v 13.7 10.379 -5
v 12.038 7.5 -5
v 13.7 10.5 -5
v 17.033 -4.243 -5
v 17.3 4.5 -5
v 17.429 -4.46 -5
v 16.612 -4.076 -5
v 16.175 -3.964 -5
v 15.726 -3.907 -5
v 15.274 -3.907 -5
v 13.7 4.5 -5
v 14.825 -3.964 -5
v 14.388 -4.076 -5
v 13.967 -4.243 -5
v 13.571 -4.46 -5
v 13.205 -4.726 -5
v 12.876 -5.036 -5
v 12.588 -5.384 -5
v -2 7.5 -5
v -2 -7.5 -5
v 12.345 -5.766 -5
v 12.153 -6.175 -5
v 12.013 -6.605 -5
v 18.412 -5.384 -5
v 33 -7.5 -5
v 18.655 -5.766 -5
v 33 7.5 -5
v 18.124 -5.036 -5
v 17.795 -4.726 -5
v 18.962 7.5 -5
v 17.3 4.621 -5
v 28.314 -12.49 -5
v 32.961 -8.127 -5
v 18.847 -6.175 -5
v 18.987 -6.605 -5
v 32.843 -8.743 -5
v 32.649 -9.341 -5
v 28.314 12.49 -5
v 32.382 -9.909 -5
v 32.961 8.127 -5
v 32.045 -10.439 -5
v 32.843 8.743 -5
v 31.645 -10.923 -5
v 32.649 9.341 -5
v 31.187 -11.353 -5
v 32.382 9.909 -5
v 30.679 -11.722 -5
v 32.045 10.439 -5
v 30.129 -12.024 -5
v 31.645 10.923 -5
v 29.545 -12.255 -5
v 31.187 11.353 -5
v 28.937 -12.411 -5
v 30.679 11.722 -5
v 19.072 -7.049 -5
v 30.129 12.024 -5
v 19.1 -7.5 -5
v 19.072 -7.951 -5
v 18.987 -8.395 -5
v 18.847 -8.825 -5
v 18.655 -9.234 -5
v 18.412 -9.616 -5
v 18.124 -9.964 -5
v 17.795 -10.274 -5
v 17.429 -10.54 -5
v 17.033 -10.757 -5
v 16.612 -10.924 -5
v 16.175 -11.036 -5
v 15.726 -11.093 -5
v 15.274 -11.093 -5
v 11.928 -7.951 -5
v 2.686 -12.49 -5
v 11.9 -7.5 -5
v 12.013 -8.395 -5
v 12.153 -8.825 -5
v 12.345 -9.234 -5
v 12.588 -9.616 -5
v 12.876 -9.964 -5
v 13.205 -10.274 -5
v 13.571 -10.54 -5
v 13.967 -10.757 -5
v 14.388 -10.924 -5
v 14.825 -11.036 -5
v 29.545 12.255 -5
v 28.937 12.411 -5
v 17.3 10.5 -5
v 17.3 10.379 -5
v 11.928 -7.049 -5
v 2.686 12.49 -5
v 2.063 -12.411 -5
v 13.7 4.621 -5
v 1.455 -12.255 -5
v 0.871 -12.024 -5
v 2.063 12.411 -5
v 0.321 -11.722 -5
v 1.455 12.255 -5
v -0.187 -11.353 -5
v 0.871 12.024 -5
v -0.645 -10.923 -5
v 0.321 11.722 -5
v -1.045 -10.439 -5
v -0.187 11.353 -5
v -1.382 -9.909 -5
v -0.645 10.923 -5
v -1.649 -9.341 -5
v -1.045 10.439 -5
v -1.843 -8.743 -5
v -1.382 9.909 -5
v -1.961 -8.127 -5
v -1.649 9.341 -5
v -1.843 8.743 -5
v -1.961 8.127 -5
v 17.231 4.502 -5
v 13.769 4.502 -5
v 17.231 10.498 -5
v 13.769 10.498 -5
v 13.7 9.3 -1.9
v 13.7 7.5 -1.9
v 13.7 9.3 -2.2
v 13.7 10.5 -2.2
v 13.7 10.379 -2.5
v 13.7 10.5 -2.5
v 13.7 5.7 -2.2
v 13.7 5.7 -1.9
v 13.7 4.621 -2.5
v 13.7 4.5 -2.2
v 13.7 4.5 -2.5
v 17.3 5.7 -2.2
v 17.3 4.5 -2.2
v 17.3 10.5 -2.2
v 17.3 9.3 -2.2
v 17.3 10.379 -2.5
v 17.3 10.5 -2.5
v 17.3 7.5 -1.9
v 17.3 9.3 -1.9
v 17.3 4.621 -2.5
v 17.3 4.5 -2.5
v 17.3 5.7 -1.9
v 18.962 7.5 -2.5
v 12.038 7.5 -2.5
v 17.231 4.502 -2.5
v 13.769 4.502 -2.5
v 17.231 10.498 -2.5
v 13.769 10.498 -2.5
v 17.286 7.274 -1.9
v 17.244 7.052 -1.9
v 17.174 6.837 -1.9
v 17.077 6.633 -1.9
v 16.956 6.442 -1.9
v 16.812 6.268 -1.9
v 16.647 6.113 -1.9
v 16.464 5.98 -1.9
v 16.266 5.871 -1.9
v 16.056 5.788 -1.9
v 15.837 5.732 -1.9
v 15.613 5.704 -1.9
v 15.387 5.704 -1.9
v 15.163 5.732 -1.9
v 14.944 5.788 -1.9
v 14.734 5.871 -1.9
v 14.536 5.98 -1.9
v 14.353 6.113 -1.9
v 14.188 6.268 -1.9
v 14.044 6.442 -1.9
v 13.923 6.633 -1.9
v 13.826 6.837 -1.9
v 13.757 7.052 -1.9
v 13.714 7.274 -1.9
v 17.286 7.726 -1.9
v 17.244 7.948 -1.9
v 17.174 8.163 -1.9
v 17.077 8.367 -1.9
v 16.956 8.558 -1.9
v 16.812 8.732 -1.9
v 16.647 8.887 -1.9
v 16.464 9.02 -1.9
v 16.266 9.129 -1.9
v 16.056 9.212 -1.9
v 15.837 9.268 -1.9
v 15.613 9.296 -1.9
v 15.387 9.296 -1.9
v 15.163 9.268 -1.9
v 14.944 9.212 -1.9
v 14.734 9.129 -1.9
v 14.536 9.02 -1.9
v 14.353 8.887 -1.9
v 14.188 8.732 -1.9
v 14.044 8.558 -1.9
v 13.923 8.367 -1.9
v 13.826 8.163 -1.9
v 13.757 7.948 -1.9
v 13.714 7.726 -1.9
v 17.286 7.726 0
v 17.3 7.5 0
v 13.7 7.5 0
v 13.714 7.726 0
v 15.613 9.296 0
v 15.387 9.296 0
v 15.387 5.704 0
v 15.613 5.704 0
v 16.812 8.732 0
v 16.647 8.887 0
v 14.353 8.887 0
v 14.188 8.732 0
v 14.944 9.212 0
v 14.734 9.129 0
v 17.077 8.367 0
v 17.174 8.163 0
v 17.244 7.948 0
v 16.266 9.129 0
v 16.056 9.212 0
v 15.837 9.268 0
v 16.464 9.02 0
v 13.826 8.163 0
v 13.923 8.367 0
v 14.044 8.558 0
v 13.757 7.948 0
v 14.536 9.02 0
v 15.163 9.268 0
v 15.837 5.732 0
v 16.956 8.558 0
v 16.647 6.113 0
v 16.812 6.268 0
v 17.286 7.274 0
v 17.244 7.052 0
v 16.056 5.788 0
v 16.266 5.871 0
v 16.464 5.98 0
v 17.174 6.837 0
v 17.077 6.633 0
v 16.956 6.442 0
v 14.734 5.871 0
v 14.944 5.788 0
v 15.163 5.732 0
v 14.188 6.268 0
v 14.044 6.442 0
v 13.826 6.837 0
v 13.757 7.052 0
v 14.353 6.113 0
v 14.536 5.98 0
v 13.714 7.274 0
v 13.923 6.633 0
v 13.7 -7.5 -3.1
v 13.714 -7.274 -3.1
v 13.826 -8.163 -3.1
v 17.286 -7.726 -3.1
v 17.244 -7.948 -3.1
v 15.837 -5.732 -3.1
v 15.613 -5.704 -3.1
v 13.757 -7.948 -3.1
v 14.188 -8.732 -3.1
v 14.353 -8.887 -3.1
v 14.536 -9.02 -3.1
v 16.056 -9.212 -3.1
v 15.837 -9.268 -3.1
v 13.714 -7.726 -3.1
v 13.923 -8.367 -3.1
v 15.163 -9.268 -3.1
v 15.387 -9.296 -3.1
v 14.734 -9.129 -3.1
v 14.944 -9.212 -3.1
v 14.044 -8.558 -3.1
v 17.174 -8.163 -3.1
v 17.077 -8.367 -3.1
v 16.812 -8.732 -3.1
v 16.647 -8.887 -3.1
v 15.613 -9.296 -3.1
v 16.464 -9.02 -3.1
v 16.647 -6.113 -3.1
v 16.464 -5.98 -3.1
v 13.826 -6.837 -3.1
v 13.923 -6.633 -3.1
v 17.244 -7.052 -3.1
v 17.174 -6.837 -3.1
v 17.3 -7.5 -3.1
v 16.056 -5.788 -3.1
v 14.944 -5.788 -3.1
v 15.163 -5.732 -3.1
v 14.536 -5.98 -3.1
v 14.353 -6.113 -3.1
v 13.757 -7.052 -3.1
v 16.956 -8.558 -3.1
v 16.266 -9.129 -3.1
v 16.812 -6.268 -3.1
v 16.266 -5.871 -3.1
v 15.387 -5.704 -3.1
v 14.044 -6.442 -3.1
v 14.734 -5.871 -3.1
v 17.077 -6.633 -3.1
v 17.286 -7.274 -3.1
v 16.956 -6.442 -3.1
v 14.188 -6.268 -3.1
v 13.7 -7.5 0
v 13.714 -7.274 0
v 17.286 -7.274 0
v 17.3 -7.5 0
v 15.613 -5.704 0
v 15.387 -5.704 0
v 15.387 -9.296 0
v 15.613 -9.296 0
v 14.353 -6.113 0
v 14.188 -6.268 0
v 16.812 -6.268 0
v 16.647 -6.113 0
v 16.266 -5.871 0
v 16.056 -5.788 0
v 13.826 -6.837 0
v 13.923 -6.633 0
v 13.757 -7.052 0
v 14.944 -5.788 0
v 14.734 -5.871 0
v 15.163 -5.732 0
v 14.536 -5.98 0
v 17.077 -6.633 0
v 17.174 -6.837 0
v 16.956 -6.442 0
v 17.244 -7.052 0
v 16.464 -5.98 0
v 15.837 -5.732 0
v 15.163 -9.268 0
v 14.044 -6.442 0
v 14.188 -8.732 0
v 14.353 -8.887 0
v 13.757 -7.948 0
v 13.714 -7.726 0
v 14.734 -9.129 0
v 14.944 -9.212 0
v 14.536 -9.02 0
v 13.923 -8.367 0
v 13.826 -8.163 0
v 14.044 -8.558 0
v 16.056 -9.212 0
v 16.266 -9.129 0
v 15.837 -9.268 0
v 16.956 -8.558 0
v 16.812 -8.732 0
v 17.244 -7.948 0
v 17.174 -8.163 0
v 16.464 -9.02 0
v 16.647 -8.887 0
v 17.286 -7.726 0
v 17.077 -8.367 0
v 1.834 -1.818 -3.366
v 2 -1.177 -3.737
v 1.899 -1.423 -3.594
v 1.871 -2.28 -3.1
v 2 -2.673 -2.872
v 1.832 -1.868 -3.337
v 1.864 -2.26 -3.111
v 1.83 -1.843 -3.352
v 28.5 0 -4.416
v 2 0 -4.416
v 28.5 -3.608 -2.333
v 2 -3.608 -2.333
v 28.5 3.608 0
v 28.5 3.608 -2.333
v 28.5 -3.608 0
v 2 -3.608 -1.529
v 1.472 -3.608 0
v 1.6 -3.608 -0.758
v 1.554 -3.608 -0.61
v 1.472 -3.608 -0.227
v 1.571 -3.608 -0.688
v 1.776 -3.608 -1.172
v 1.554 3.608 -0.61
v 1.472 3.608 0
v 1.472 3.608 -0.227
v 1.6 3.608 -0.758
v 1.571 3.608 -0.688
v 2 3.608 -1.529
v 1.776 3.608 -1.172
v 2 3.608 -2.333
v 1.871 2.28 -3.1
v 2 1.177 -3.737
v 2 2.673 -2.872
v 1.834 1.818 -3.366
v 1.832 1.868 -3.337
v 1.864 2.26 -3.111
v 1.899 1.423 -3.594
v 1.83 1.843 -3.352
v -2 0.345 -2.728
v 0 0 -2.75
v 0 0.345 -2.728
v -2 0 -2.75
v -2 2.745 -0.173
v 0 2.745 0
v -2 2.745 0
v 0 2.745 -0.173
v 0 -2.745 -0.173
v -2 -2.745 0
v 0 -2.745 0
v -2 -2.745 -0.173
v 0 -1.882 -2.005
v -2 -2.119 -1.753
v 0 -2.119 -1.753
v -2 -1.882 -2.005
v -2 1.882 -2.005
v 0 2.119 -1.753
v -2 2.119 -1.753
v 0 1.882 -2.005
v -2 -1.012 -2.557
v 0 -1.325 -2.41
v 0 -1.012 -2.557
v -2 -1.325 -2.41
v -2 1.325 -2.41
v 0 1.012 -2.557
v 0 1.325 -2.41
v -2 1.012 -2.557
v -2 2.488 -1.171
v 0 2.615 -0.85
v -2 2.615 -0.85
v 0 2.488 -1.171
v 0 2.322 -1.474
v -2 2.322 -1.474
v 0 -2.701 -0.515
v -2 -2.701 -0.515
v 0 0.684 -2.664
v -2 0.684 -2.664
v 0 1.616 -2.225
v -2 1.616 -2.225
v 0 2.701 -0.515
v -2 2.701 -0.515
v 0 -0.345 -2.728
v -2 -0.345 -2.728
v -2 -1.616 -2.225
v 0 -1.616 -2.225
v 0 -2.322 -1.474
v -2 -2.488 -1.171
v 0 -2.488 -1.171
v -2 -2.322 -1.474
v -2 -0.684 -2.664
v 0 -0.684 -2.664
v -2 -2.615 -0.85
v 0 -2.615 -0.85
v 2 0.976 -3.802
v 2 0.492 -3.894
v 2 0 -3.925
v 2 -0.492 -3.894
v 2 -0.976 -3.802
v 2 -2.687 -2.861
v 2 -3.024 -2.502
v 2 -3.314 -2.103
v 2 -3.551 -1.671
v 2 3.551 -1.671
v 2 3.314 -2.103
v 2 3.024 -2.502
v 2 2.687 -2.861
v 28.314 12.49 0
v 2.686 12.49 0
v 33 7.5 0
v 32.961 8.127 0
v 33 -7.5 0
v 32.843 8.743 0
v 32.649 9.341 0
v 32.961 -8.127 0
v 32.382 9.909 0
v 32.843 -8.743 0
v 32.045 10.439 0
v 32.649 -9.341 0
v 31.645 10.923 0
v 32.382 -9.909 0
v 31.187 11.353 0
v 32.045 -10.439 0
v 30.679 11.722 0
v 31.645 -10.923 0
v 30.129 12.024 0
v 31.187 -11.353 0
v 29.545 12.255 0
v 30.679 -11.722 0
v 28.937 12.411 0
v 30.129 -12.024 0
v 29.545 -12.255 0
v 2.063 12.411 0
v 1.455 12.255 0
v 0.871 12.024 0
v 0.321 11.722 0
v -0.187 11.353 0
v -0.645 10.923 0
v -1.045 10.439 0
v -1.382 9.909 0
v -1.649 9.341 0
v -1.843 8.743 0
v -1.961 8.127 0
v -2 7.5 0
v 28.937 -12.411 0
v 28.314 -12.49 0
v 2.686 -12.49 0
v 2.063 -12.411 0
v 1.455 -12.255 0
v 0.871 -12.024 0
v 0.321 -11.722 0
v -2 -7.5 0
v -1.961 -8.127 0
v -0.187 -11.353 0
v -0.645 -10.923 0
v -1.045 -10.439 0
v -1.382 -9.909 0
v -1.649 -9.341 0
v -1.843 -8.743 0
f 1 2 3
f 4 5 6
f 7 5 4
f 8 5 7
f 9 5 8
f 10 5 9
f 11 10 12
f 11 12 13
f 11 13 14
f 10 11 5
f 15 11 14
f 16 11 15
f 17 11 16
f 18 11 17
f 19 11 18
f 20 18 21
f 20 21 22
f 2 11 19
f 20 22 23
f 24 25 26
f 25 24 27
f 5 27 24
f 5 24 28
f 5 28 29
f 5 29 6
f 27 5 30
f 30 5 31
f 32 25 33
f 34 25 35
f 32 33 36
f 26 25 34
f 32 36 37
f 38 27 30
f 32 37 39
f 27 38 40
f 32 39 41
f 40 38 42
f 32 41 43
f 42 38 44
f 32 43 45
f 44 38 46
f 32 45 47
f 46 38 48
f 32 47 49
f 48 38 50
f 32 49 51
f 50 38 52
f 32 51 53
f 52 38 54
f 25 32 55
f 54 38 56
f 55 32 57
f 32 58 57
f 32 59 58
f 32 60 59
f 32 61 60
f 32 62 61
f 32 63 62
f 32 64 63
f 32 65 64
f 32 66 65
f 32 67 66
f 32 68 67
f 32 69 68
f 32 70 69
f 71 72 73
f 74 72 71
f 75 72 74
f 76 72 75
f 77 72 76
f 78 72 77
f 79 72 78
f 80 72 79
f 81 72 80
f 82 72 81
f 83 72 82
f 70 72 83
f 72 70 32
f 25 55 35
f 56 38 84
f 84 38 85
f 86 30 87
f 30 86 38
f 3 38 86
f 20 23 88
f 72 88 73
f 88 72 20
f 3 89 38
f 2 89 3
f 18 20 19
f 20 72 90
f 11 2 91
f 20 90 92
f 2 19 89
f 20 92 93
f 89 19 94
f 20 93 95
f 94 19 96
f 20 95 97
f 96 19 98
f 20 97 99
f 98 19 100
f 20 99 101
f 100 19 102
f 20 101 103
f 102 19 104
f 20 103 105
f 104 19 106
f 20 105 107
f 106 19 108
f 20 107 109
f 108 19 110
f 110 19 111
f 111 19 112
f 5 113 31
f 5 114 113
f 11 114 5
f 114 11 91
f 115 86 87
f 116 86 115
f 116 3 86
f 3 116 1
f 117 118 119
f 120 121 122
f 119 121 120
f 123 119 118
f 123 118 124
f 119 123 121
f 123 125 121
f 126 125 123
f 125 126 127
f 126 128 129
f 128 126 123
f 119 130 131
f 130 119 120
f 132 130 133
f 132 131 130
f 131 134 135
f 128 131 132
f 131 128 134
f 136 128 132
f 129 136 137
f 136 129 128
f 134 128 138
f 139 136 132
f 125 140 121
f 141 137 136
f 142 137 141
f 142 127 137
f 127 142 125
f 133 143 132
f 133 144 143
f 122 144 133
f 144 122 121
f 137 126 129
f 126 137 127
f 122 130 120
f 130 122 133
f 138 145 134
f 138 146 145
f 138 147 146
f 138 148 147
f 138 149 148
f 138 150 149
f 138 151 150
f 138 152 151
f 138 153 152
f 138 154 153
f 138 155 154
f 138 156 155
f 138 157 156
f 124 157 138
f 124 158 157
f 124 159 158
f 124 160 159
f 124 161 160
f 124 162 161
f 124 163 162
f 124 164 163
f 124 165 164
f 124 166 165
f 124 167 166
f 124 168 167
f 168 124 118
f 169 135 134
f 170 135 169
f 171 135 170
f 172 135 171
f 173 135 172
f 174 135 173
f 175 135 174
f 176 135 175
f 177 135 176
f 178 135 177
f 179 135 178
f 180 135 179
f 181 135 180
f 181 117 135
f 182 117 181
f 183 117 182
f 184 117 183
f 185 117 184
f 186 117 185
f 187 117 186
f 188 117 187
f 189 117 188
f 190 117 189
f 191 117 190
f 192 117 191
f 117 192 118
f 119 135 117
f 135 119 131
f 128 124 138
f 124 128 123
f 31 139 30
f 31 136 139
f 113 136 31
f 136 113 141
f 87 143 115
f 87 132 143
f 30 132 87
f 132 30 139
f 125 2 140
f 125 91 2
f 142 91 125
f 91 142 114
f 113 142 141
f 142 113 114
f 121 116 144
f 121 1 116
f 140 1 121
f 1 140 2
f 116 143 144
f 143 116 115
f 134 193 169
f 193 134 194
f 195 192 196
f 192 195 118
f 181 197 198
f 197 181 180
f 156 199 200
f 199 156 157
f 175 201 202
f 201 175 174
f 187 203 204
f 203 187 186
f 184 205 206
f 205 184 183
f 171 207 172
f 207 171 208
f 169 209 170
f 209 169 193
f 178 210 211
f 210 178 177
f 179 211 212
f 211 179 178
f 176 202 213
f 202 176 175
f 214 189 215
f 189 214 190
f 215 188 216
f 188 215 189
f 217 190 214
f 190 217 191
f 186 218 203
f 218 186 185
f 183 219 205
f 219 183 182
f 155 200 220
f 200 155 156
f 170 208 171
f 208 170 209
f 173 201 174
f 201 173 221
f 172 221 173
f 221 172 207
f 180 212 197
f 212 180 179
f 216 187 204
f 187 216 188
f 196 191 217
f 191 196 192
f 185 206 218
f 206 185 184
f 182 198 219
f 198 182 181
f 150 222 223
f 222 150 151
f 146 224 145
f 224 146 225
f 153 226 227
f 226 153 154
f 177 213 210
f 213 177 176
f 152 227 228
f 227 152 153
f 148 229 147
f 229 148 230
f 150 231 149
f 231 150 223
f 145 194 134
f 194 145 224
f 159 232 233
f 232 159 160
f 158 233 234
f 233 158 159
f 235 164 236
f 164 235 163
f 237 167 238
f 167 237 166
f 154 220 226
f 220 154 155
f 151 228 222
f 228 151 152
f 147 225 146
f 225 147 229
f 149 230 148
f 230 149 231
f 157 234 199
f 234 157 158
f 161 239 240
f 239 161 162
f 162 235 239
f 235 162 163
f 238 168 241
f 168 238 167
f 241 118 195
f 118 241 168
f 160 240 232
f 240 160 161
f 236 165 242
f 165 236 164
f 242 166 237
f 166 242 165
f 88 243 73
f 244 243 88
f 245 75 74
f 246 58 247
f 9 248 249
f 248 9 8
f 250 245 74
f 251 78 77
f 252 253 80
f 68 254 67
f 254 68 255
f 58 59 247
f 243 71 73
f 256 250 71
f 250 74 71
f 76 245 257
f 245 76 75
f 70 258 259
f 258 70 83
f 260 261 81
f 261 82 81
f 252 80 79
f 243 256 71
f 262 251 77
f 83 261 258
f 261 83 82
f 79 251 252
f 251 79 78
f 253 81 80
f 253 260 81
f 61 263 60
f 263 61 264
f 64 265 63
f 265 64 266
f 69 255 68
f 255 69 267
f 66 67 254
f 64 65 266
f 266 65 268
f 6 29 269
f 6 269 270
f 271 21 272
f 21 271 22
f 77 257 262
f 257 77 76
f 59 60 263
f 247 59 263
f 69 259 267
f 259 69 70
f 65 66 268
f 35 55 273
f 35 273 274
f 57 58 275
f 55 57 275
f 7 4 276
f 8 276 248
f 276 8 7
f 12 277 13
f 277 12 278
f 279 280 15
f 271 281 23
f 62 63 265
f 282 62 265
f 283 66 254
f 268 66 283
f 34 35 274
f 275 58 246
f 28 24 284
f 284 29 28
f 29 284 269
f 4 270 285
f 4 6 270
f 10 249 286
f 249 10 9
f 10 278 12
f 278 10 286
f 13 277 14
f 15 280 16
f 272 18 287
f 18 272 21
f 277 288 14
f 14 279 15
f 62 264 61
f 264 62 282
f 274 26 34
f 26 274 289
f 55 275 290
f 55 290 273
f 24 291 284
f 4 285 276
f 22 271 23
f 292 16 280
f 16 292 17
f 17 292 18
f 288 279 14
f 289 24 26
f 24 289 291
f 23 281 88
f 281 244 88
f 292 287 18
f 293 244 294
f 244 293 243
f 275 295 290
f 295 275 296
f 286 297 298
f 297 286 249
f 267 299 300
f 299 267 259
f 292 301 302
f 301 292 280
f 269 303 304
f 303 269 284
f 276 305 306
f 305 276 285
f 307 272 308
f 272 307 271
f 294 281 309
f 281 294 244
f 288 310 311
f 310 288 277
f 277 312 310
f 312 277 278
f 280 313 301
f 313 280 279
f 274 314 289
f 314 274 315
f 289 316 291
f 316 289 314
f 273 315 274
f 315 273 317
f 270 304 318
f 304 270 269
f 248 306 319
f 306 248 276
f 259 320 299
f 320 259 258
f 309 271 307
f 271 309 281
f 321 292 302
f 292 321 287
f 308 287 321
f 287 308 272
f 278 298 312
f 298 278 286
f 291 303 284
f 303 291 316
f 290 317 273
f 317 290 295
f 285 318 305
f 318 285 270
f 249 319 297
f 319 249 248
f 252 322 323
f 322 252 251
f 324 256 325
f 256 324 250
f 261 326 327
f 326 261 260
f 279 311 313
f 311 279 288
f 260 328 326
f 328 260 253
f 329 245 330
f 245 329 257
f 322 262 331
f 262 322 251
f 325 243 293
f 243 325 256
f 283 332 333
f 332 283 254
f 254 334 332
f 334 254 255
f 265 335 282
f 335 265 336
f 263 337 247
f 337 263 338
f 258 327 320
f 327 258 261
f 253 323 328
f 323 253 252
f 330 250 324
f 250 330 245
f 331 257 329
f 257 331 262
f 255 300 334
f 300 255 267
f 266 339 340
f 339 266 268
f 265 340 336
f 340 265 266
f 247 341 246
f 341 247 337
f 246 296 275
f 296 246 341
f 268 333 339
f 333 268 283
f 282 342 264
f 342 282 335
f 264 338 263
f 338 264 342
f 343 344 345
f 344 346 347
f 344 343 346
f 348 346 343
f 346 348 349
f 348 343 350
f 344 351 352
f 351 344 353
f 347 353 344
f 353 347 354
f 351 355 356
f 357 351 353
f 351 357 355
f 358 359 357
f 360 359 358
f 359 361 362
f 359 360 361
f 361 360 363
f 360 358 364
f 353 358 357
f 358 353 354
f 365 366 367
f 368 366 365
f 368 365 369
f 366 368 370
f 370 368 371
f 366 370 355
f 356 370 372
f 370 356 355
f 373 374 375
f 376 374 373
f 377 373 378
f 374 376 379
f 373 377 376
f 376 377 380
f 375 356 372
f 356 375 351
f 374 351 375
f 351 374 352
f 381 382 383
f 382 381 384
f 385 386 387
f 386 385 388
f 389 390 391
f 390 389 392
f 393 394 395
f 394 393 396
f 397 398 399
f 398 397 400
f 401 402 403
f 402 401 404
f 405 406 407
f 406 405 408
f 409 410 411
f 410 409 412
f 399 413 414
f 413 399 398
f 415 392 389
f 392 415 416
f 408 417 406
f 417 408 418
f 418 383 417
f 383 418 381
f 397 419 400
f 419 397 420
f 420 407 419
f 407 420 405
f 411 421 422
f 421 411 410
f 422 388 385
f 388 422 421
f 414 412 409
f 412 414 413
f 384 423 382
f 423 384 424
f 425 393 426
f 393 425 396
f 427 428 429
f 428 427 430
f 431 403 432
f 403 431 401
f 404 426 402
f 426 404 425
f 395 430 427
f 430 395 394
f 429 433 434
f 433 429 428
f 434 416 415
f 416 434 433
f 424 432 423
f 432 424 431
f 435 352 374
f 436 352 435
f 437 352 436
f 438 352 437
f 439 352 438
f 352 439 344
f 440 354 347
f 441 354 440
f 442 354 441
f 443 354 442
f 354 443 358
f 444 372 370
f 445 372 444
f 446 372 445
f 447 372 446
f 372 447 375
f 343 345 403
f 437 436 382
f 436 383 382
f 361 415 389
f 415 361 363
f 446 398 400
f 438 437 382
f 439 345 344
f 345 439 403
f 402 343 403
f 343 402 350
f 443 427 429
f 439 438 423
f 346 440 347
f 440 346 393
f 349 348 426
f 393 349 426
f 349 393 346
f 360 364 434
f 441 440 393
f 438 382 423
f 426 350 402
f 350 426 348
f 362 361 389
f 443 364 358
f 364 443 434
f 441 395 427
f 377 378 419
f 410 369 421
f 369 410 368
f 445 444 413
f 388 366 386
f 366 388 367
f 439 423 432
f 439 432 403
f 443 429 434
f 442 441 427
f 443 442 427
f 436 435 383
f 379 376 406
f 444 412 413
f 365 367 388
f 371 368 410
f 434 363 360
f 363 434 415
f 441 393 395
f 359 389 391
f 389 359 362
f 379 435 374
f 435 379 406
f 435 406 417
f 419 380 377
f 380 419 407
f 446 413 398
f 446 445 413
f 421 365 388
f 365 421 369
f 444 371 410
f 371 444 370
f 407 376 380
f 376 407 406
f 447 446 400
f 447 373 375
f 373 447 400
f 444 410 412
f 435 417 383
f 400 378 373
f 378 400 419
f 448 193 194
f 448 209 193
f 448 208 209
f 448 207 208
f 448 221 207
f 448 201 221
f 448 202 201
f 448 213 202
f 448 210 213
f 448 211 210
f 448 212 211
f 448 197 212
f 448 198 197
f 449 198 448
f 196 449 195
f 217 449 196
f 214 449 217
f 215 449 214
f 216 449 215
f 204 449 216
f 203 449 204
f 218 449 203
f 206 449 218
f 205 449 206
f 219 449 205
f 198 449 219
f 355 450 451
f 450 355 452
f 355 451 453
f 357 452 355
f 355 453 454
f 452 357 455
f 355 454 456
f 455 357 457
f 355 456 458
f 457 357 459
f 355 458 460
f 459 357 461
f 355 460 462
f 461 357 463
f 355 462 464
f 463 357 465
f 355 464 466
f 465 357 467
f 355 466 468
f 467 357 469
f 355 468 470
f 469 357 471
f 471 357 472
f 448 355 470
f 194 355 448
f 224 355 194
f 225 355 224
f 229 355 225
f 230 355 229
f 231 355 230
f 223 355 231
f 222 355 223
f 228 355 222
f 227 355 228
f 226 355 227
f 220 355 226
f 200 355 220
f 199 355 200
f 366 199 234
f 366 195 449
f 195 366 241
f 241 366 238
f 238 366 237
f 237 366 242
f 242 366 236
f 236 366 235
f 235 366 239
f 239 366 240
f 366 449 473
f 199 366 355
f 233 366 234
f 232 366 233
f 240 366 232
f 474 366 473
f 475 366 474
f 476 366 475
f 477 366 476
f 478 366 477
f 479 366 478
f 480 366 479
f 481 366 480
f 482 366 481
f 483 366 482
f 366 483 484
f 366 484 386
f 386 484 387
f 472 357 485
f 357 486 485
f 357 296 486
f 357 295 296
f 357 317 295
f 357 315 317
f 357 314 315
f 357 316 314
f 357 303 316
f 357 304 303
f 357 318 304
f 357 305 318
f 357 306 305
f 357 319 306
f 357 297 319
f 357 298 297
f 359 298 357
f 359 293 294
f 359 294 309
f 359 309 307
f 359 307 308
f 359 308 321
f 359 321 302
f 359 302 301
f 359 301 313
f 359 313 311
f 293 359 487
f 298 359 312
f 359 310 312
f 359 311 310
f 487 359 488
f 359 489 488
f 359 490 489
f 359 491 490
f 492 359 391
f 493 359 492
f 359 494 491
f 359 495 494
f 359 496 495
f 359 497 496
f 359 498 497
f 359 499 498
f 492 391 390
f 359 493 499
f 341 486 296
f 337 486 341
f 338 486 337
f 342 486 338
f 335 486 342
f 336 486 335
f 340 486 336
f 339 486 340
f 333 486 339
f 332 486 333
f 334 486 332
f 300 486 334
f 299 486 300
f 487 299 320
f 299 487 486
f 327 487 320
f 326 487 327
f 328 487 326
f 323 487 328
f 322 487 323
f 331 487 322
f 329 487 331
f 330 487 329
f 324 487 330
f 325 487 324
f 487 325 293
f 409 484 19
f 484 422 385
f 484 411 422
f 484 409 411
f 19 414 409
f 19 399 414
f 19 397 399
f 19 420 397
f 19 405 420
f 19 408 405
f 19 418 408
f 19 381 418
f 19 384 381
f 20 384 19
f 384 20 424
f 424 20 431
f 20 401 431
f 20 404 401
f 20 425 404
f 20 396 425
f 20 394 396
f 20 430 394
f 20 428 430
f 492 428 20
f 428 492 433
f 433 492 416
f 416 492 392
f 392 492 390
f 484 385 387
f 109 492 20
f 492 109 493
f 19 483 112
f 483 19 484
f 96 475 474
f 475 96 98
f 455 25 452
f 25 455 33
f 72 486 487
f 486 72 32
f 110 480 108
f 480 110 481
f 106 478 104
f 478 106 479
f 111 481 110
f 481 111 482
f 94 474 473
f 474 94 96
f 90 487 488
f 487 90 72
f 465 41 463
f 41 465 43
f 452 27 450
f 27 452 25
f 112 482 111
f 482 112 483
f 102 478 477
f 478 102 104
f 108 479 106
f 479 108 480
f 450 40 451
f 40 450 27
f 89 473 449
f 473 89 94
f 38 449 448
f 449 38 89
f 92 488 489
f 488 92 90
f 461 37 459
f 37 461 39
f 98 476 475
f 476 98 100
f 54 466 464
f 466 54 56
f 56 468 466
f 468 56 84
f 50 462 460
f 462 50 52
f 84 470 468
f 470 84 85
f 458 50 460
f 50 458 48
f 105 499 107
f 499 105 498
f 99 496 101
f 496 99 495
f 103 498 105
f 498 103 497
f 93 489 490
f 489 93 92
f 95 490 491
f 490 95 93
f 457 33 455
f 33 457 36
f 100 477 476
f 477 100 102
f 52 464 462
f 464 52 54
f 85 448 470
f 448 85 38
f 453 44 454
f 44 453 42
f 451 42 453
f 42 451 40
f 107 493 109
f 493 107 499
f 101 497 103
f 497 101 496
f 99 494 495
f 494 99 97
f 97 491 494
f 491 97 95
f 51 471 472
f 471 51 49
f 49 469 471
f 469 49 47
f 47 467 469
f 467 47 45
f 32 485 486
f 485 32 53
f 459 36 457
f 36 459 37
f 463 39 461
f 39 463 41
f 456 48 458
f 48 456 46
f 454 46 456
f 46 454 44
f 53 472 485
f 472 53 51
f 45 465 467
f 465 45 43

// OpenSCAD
$fn = 50;


difference() {
	union() {
		translate(v = [15.5000000000, 0, -5.0000000000]) {
			hull() {
				translate(v = [-12.5000000000, 7.5000000000, 0]) {
					cylinder(h = 10, r = 5);
				}
				translate(v = [12.5000000000, 7.5000000000, 0]) {
					cylinder(h = 10, r = 5);
				}
				translate(v = [-12.5000000000, -7.5000000000, 0]) {
					cylinder(h = 10, r = 5);
				}
				translate(v = [12.5000000000, -7.5000000000, 0]) {
					cylinder(h = 10, r = 5);
				}
			}
		}
	}
	union() {
		translate(v = [15.5000000000, 7.5000000000, 5.0000000000]) {
			rotate(a = [0, 0, 0]) {
				difference() {
					union() {
						translate(v = [0, 0, -10.0000000000]) {
							rotate(a = [0, 0, 0]) {
								difference() {
									union() {
										#translate(v = [-1.8000000000, -3.0000000000, -0.3000000000]) {
											cube(size = [3.6000000000, 6.0000000000, 0.3000000000]);
										}
										#translate(v = [-1.8000000000, -1.8000000000, -0.6000000000]) {
											cube(size = [3.6000000000, 3.6000000000, 0.3000000000]);
										}
										#translate(v = [-1.8000000000, -3.0000000000, 2.5000000000]) {
											cube(size = [3.6000000000, 6.0000000000, 0.3000000000]);
										}
										#translate(v = [-1.8000000000, -1.8000000000, 2.8000000000]) {
											cube(size = [3.6000000000, 3.6000000000, 0.3000000000]);
										}
										#linear_extrude(height = 2.5000000000) {
											polygon(points = [[3.4620000000, 0.0000000000], [1.7310000000, 2.9981799479], [-1.7310000000, 2.9981799479], [-3.4620000000, 0.0000000000], [-1.7310000000, -2.9981799479], [1.7310000000, -2.9981799479]]);
										}
										#translate(v = [-1.8000000000, -3.0000000000, -0.3000000000]) {
											cube(size = [3.6000000000, 6.0000000000, 0.3000000000]);
										}
										#translate(v = [-1.8000000000, -1.8000000000, -0.6000000000]) {
											cube(size = [3.6000000000, 3.6000000000, 0.3000000000]);
										}
										#translate(v = [-1.8000000000, -3.0000000000, 2.5000000000]) {
											cube(size = [3.6000000000, 6.0000000000, 0.3000000000]);
										}
										#translate(v = [-1.8000000000, -1.8000000000, 2.8000000000]) {
											cube(size = [3.6000000000, 3.6000000000, 0.3000000000]);
										}
										#translate(v = [-1.8000000000, -3.0000000000, -0.3000000000]) {
											cube(size = [3.6000000000, 6.0000000000, 0.3000000000]);
										}
										#translate(v = [-1.8000000000, -1.8000000000, -0.6000000000]) {
											cube(size = [3.6000000000, 3.6000000000, 0.3000000000]);
										}
										#translate(v = [-1.8000000000, -3.0000000000, 2.5000000000]) {
											cube(size = [3.6000000000, 6.0000000000, 0.3000000000]);
										}
										#translate(v = [-1.8000000000, -1.8000000000, 2.8000000000]) {
											cube(size = [3.6000000000, 3.6000000000, 0.3000000000]);
										}
									}
									union();
								}
							}
						}
						translate(v = [0, 0, -10.0000000000]) {
							rotate(a = [0, 0, 0]) {
								difference() {
									union() {
										#translate(v = [-1.8000000000, -3.0000000000, -0.3000000000]) {
											cube(size = [3.6000000000, 6.0000000000, 0.3000000000]);
										}
										#translate(v = [-1.8000000000, -1.8000000000, -0.6000000000]) {
											cube(size = [3.6000000000, 3.6000000000, 0.3000000000]);
										}
										#translate(v = [-1.8000000000, -3.0000000000, 2.5000000000]) {
											cube(size = [3.6000000000, 6.0000000000, 0.3000000000]);
										}
										#translate(v = [-1.8000000000, -1.8000000000, 2.8000000000]) {
											cube(size = [3.6000000000, 3.6000000000, 0.3000000000]);
										}
										#linear_extrude(height = 2.5000000000) {
											polygon(points = [[3.4620000000, 0.0000000000], [1.7310000000, 2.9981799479], [-1.7310000000, 2.9981799479], [-3.4620000000, 0.0000000000], [-1.7310000000, -2.9981799479], [1.7310000000, -2.9981799479]]);
										}
										#translate(v = [-1.8000000000, -3.0000000000, -0.3000000000]) {
											cube(size = [3.6000000000, 6.0000000000, 0.3000000000]);
										}
										#translate(v = [-1.8000000000, -1.8000000000, -0.6000000000]) {
											cube(size = [3.6000000000, 3.6000000000, 0.3000000000]);
										}
										#translate(v = [-1.8000000000, -3.0000000000, 2.5000000000]) {
											cube(size = [3.6000000000, 6.0000000000, 0.3000000000]);
										}
										#translate(v = [-1.8000000000, -1.8000000000, 2.8000000000]) {
											cube(size = [3.6000000000, 3.6000000000, 0.3000000000]);
										}
										#translate(v = [-1.8000000000, -3.0000000000, -0.3000000000]) {
											cube(size = [3.6000000000, 6.0000000000, 0.3000000000]);
										}
										#translate(v = [-1.8000000000, -1.8000000000, -0.6000000000]) {
											cube(size = [3.6000000000, 3.6000000000, 0.3000000000]);
										}
										#translate(v = [-1.8000000000, -3.0000000000, 2.5000000000]) {
											cube(size = [3.6000000000, 6.0000000000, 0.3000000000]);
										}
										#translate(v = [-1.8000000000, -1.8000000000, 2.8000000000]) {
											cube(size = [3.6000000000, 3.6000000000, 0.3000000000]);
										}
									}
									union();
								}
							}
						}
						translate(v = [0, 0, -10.0000000000]) {
							rotate(a = [0, 0, 0]) {
								difference() {
									union() {
										#translate(v = [-1.8000000000, -3.0000000000, -0.3000000000]) {
											cube(size = [3.6000000000, 6.0000000000, 0.3000000000]);
										}
										#translate(v = [-1.8000000000, -1.8000000000, -0.6000000000]) {
											cube(size = [3.6000000000, 3.6000000000, 0.3000000000]);
										}
										#translate(v = [-1.8000000000, -3.0000000000, 2.5000000000]) {
											cube(size = [3.6000000000, 6.0000000000, 0.3000000000]);
										}
										#translate(v = [-1.8000000000, -1.8000000000, 2.8000000000]) {
											cube(size = [3.6000000000, 3.6000000000, 0.3000000000]);
										}
										#linear_extrude(height = 2.5000000000) {
											polygon(points = [[3.4620000000, 0.0000000000], [1.7310000000, 2.9981799479], [-1.7310000000, 2.9981799479], [-3.4620000000, 0.0000000000], [-1.7310000000, -2.9981799479], [1.7310000000, -2.9981799479]]);
										}
										#translate(v = [-1.8000000000, -3.0000000000, -0.3000000000]) {
											cube(size = [3.6000000000, 6.0000000000, 0.3000000000]);
										}
										#translate(v = [-1.8000000000, -1.8000000000, -0.6000000000]) {
											cube(size = [3.6000000000, 3.6000000000, 0.3000000000]);
										}
										#translate(v = [-1.8000000000, -3.0000000000, 2.5000000000]) {
											cube(size = [3.6000000000, 6.0000000000, 0.3000000000]);
										}
										#translate(v = [-1.8000000000, -1.8000000000, 2.8000000000]) {
											cube(size = [3.6000000000, 3.6000000000, 0.3000000000]);
										}
										#translate(v = [-1.8000000000, -3.0000000000, -0.3000000000]) {
											cube(size = [3.6000000000, 6.0000000000, 0.3000000000]);
										}
										#translate(v = [-1.8000000000, -1.8000000000, -0.6000000000]) {
											cube(size = [3.6000000000, 3.6000000000, 0.3000000000]);
										}
										#translate(v = [-1.8000000000, -3.0000000000, 2.5000000000]) {
											cube(size = [3.6000000000, 6.0000000000, 0.3000000000]);
										}
										#translate(v = [-1.8000000000, -1.8000000000, 2.8000000000]) {
											cube(size = [3.6000000000, 3.6000000000, 0.3000000000]);
										}
									}
									union();
								}
							}
						}
						#translate(v = [0, 0, -10.0000000000]) {
							cylinder(h = 10, r = 1.5000000000);
						}
						#translate(v = [0, 0, -1.9000000000]) {
							cylinder(h = 1.9000000000, r1 = 1.8000000000, r2 = 3.6000000000);
						}
						#translate(v = [0, 0, -10.0000000000]) {
							cylinder(h = 10, r = 1.8000000000);
						}
						#translate(v = [0, 0, -10.0000000000]) {
							cylinder(h = 10, r = 1.5000000000);
						}
					}
					union();
				}
			}
		}
		translate(v = [15.5000000000, -7.5000000000, -5.0000000000]) {
			rotate(a = [0, 180, 0]) {
				difference() {
					union() {
						translate(v = [0, 0, -10.0000000000]) {
							rotate(a = [0, 0, 0]) {
								difference() {
									union() {
										#translate(v = [-1.8000000000, -3.0000000000, -0.3000000000]) {
											cube(size = [3.6000000000, 6.0000000000, 0.3000000000]);
										}
										#translate(v = [-1.8000000000, -1.8000000000, -0.6000000000]) {
											cube(size = [3.6000000000, 3.6000000000, 0.3000000000]);
										}
										#translate(v = [-1.8000000000, -3.0000000000, 2.5000000000]) {
											cube(size = [3.6000000000, 6.0000000000, 0.3000000000]);
										}
										#translate(v = [-1.8000000000, -1.8000000000, 2.8000000000]) {
											cube(size = [3.6000000000, 3.6000000000, 0.3000000000]);
										}
										#linear_extrude(height = 2.5000000000) {
											polygon(points = [[3.4620000000, 0.0000000000], [1.7310000000, 2.9981799479], [-1.7310000000, 2.9981799479], [-3.4620000000, 0.0000000000], [-1.7310000000, -2.9981799479], [1.7310000000, -2.9981799479]]);
										}
										#translate(v = [-1.8000000000, -3.0000000000, -0.3000000000]) {
											cube(size = [3.6000000000, 6.0000000000, 0.3000000000]);
										}
										#translate(v = [-1.8000000000, -1.8000000000, -0.6000000000]) {
											cube(size = [3.6000000000, 3.6000000000, 0.3000000000]);
										}
										#translate(v = [-1.8000000000, -3.0000000000, 2.5000000000]) {
											cube(size = [3.6000000000, 6.0000000000, 0.3000000000]);
										}
										#translate(v = [-1.8000000000, -1.8000000000, 2.8000000000]) {
											cube(size = [3.6000000000, 3.6000000000, 0.3000000000]);
										}
										#translate(v = [-1.8000000000, -3.0000000000, -0.3000000000]) {
											cube(size = [3.6000000000, 6.0000000000, 0.3000000000]);
										}
										#translate(v = [-1.8000000000, -1.8000000000, -0.6000000000]) {
											cube(size = [3.6000000000, 3.6000000000, 0.3000000000]);
										}
										#translate(v = [-1.8000000000, -3.0000000000, 2.5000000000]) {
											cube(size = [3.6000000000, 6.0000000000, 0.3000000000]);
										}
										#translate(v = [-1.8000000000, -1.8000000000, 2.8000000000]) {
											cube(size = [3.6000000000, 3.6000000000, 0.3000000000]);
										}
									}
									union();
								}
							}
						}
						translate(v = [0, 0, -10.0000000000]) {
							rotate(a = [0, 0, 0]) {
								difference() {
									union() {
										#translate(v = [-1.8000000000, -3.0000000000, -0.3000000000]) {
											cube(size = [3.6000000000, 6.0000000000, 0.3000000000]);
										}
										#translate(v = [-1.8000000000, -1.8000000000, -0.6000000000]) {
											cube(size = [3.6000000000, 3.6000000000, 0.3000000000]);
										}
										#translate(v = [-1.8000000000, -3.0000000000, 2.5000000000]) {
											cube(size = [3.6000000000, 6.0000000000, 0.3000000000]);
										}
										#translate(v = [-1.8000000000, -1.8000000000, 2.8000000000]) {
											cube(size = [3.6000000000, 3.6000000000, 0.3000000000]);
										}
										#linear_extrude(height = 2.5000000000) {
											polygon(points = [[3.4620000000, 0.0000000000], [1.7310000000, 2.9981799479], [-1.7310000000, 2.9981799479], [-3.4620000000, 0.0000000000], [-1.7310000000, -2.9981799479], [1.7310000000, -2.9981799479]]);
										}
										#translate(v = [-1.8000000000, -3.0000000000, -0.3000000000]) {
											cube(size = [3.6000000000, 6.0000000000, 0.3000000000]);
										}
										#translate(v = [-1.8000000000, -1.8000000000, -0.6000000000]) {
											cube(size = [3.6000000000, 3.6000000000, 0.3000000000]);
										}
										#translate(v = [-1.8000000000, -3.0000000000, 2.5000000000]) {
											cube(size = [3.6000000000, 6.0000000000, 0.3000000000]);
										}
										#translate(v = [-1.8000000000, -1.8000000000, 2.8000000000]) {
											cube(size = [3.6000000000, 3.6000000000, 0.3000000000]);
										}
										#translate(v = [-1.8000000000, -3.0000000000, -0.3000000000]) {
											cube(size = [3.6000000000, 6.0000000000, 0.3000000000]);
										}
										#translate(v = [-1.8000000000, -1.8000000000, -0.6000000000]) {
											cube(size = [3.6000000000, 3.6000000000, 0.3000000000]);
										}
										#translate(v = [-1.8000000000, -3.0000000000, 2.5000000000]) {
											cube(size = [3.6000000000, 6.0000000000, 0.3000000000]);
										}
										#translate(v = [-1.8000000000, -1.8000000000, 2.8000000000]) {
											cube(size = [3.6000000000, 3.6000000000, 0.3000000000]);
										}
									}
									union();
								}
							}
						}
						translate(v = [0, 0, -10.0000000000]) {
							rotate(a = [0, 0, 0]) {
								difference() {
									union() {
										#translate(v = [-1.8000000000, -3.0000000000, -0.3000000000]) {
											cube(size = [3.6000000000, 6.0000000000, 0.3000000000]);
										}
										#translate(v = [-1.8000000000, -1.8000000000, -0.6000000000]) {
											cube(size = [3.6000000000, 3.6000000000, 0.3000000000]);
										}
										#translate(v = [-1.8000000000, -3.0000000000, 2.5000000000]) {
											cube(size = [3.6000000000, 6.0000000000, 0.3000000000]);
										}
										#translate(v = [-1.8000000000, -1.8000000000, 2.8000000000]) {
											cube(size = [3.6000000000, 3.6000000000, 0.3000000000]);
										}
										#linear_extrude(height = 2.5000000000) {
											polygon(points = [[3.4620000000, 0.0000000000], [1.7310000000, 2.9981799479], [-1.7310000000, 2.9981799479], [-3.4620000000, 0.0000000000], [-1.7310000000, -2.9981799479], [1.7310000000, -2.9981799479]]);
										}
										#translate(v = [-1.8000000000, -3.0000000000, -0.3000000000]) {
											cube(size = [3.6000000000, 6.0000000000, 0.3000000000]);
										}
										#translate(v = [-1.8000000000, -1.8000000000, -0.6000000000]) {
											cube(size = [3.6000000000, 3.6000000000, 0.3000000000]);
										}
										#translate(v = [-1.8000000000, -3.0000000000, 2.5000000000]) {
											cube(size = [3.6000000000, 6.0000000000, 0.3000000000]);
										}
										#translate(v = [-1.8000000000, -1.8000000000, 2.8000000000]) {
											cube(size = [3.6000000000, 3.6000000000, 0.3000000000]);
										}
										#translate(v = [-1.8000000000, -3.0000000000, -0.3000000000]) {
											cube(size = [3.6000000000, 6.0000000000, 0.3000000000]);
										}
										#translate(v = [-1.8000000000, -1.8000000000, -0.6000000000]) {
											cube(size = [3.6000000000, 3.6000000000, 0.3000000000]);
										}
										#translate(v = [-1.8000000000, -3.0000000000, 2.5000000000]) {
											cube(size = [3.6000000000, 6.0000000000, 0.3000000000]);
										}
										#translate(v = [-1.8000000000, -1.8000000000, 2.8000000000]) {
											cube(size = [3.6000000000, 3.6000000000, 0.3000000000]);
										}
									}
									union();
								}
							}
						}
						#translate(v = [0, 0, -10.0000000000]) {
							cylinder(h = 10, r = 1.5000000000);
						}
						#translate(v = [0, 0, -1.9000000000]) {
							cylinder(h = 1.9000000000, r1 = 1.8000000000, r2 = 3.6000000000);
						}
						#translate(v = [0, 0, -10.0000000000]) {
							cylinder(h = 10, r = 1.8000000000);
						}
						#translate(v = [0, 0, -10.0000000000]) {
							cylinder(h = 10, r = 1.5000000000);
						}
					}
					union();
				}
			}
		}
		translate(v = [0, 0, 0]) {
			rotate(a = [0, 90, 0]) {
				difference() {
					union() {
						translate(v = [0.2500000000, 0, 0]) {
							#linear_extrude(height = 28.5000000000) {
								polygon(points = [[4.1658550000, 0.0000000000], [2.0829275000, 3.6077362585], [-2.0829275000, 3.6077362585], [-4.1658550000, 0.0000000000], [-2.0829275000, -3.6077362585], [2.0829275000, -3.6077362585]]);
							}
						}
						#translate(v = [0, 0, -72.0000000000]) {
							cylinder(h = 100, r = 2.7500000000);
						}
					}
					union() {
						difference() {
							#cylinder(h = 2, r1 = 10.7500000000, r2 = 11.9250000000);
							#cylinder(h = 2, r1 = 2.7500000000, r2 = 3.9250000000);
						}
					}
				}
			}
		}
		translate(v = [-250.0000000000, -250.0000000000, 0]) {
			cube(size = [500, 500, 500]);
		}
		translate(v = [-250.0000000000, -250.0000000000, 0]) {
			cube(size = [500, 500, 500]);
		}
		translate(v = [-250.0000000000, -250.0000000000, 0]) {
			cube(size = [500, 500, 500]);
		}
	}
}
